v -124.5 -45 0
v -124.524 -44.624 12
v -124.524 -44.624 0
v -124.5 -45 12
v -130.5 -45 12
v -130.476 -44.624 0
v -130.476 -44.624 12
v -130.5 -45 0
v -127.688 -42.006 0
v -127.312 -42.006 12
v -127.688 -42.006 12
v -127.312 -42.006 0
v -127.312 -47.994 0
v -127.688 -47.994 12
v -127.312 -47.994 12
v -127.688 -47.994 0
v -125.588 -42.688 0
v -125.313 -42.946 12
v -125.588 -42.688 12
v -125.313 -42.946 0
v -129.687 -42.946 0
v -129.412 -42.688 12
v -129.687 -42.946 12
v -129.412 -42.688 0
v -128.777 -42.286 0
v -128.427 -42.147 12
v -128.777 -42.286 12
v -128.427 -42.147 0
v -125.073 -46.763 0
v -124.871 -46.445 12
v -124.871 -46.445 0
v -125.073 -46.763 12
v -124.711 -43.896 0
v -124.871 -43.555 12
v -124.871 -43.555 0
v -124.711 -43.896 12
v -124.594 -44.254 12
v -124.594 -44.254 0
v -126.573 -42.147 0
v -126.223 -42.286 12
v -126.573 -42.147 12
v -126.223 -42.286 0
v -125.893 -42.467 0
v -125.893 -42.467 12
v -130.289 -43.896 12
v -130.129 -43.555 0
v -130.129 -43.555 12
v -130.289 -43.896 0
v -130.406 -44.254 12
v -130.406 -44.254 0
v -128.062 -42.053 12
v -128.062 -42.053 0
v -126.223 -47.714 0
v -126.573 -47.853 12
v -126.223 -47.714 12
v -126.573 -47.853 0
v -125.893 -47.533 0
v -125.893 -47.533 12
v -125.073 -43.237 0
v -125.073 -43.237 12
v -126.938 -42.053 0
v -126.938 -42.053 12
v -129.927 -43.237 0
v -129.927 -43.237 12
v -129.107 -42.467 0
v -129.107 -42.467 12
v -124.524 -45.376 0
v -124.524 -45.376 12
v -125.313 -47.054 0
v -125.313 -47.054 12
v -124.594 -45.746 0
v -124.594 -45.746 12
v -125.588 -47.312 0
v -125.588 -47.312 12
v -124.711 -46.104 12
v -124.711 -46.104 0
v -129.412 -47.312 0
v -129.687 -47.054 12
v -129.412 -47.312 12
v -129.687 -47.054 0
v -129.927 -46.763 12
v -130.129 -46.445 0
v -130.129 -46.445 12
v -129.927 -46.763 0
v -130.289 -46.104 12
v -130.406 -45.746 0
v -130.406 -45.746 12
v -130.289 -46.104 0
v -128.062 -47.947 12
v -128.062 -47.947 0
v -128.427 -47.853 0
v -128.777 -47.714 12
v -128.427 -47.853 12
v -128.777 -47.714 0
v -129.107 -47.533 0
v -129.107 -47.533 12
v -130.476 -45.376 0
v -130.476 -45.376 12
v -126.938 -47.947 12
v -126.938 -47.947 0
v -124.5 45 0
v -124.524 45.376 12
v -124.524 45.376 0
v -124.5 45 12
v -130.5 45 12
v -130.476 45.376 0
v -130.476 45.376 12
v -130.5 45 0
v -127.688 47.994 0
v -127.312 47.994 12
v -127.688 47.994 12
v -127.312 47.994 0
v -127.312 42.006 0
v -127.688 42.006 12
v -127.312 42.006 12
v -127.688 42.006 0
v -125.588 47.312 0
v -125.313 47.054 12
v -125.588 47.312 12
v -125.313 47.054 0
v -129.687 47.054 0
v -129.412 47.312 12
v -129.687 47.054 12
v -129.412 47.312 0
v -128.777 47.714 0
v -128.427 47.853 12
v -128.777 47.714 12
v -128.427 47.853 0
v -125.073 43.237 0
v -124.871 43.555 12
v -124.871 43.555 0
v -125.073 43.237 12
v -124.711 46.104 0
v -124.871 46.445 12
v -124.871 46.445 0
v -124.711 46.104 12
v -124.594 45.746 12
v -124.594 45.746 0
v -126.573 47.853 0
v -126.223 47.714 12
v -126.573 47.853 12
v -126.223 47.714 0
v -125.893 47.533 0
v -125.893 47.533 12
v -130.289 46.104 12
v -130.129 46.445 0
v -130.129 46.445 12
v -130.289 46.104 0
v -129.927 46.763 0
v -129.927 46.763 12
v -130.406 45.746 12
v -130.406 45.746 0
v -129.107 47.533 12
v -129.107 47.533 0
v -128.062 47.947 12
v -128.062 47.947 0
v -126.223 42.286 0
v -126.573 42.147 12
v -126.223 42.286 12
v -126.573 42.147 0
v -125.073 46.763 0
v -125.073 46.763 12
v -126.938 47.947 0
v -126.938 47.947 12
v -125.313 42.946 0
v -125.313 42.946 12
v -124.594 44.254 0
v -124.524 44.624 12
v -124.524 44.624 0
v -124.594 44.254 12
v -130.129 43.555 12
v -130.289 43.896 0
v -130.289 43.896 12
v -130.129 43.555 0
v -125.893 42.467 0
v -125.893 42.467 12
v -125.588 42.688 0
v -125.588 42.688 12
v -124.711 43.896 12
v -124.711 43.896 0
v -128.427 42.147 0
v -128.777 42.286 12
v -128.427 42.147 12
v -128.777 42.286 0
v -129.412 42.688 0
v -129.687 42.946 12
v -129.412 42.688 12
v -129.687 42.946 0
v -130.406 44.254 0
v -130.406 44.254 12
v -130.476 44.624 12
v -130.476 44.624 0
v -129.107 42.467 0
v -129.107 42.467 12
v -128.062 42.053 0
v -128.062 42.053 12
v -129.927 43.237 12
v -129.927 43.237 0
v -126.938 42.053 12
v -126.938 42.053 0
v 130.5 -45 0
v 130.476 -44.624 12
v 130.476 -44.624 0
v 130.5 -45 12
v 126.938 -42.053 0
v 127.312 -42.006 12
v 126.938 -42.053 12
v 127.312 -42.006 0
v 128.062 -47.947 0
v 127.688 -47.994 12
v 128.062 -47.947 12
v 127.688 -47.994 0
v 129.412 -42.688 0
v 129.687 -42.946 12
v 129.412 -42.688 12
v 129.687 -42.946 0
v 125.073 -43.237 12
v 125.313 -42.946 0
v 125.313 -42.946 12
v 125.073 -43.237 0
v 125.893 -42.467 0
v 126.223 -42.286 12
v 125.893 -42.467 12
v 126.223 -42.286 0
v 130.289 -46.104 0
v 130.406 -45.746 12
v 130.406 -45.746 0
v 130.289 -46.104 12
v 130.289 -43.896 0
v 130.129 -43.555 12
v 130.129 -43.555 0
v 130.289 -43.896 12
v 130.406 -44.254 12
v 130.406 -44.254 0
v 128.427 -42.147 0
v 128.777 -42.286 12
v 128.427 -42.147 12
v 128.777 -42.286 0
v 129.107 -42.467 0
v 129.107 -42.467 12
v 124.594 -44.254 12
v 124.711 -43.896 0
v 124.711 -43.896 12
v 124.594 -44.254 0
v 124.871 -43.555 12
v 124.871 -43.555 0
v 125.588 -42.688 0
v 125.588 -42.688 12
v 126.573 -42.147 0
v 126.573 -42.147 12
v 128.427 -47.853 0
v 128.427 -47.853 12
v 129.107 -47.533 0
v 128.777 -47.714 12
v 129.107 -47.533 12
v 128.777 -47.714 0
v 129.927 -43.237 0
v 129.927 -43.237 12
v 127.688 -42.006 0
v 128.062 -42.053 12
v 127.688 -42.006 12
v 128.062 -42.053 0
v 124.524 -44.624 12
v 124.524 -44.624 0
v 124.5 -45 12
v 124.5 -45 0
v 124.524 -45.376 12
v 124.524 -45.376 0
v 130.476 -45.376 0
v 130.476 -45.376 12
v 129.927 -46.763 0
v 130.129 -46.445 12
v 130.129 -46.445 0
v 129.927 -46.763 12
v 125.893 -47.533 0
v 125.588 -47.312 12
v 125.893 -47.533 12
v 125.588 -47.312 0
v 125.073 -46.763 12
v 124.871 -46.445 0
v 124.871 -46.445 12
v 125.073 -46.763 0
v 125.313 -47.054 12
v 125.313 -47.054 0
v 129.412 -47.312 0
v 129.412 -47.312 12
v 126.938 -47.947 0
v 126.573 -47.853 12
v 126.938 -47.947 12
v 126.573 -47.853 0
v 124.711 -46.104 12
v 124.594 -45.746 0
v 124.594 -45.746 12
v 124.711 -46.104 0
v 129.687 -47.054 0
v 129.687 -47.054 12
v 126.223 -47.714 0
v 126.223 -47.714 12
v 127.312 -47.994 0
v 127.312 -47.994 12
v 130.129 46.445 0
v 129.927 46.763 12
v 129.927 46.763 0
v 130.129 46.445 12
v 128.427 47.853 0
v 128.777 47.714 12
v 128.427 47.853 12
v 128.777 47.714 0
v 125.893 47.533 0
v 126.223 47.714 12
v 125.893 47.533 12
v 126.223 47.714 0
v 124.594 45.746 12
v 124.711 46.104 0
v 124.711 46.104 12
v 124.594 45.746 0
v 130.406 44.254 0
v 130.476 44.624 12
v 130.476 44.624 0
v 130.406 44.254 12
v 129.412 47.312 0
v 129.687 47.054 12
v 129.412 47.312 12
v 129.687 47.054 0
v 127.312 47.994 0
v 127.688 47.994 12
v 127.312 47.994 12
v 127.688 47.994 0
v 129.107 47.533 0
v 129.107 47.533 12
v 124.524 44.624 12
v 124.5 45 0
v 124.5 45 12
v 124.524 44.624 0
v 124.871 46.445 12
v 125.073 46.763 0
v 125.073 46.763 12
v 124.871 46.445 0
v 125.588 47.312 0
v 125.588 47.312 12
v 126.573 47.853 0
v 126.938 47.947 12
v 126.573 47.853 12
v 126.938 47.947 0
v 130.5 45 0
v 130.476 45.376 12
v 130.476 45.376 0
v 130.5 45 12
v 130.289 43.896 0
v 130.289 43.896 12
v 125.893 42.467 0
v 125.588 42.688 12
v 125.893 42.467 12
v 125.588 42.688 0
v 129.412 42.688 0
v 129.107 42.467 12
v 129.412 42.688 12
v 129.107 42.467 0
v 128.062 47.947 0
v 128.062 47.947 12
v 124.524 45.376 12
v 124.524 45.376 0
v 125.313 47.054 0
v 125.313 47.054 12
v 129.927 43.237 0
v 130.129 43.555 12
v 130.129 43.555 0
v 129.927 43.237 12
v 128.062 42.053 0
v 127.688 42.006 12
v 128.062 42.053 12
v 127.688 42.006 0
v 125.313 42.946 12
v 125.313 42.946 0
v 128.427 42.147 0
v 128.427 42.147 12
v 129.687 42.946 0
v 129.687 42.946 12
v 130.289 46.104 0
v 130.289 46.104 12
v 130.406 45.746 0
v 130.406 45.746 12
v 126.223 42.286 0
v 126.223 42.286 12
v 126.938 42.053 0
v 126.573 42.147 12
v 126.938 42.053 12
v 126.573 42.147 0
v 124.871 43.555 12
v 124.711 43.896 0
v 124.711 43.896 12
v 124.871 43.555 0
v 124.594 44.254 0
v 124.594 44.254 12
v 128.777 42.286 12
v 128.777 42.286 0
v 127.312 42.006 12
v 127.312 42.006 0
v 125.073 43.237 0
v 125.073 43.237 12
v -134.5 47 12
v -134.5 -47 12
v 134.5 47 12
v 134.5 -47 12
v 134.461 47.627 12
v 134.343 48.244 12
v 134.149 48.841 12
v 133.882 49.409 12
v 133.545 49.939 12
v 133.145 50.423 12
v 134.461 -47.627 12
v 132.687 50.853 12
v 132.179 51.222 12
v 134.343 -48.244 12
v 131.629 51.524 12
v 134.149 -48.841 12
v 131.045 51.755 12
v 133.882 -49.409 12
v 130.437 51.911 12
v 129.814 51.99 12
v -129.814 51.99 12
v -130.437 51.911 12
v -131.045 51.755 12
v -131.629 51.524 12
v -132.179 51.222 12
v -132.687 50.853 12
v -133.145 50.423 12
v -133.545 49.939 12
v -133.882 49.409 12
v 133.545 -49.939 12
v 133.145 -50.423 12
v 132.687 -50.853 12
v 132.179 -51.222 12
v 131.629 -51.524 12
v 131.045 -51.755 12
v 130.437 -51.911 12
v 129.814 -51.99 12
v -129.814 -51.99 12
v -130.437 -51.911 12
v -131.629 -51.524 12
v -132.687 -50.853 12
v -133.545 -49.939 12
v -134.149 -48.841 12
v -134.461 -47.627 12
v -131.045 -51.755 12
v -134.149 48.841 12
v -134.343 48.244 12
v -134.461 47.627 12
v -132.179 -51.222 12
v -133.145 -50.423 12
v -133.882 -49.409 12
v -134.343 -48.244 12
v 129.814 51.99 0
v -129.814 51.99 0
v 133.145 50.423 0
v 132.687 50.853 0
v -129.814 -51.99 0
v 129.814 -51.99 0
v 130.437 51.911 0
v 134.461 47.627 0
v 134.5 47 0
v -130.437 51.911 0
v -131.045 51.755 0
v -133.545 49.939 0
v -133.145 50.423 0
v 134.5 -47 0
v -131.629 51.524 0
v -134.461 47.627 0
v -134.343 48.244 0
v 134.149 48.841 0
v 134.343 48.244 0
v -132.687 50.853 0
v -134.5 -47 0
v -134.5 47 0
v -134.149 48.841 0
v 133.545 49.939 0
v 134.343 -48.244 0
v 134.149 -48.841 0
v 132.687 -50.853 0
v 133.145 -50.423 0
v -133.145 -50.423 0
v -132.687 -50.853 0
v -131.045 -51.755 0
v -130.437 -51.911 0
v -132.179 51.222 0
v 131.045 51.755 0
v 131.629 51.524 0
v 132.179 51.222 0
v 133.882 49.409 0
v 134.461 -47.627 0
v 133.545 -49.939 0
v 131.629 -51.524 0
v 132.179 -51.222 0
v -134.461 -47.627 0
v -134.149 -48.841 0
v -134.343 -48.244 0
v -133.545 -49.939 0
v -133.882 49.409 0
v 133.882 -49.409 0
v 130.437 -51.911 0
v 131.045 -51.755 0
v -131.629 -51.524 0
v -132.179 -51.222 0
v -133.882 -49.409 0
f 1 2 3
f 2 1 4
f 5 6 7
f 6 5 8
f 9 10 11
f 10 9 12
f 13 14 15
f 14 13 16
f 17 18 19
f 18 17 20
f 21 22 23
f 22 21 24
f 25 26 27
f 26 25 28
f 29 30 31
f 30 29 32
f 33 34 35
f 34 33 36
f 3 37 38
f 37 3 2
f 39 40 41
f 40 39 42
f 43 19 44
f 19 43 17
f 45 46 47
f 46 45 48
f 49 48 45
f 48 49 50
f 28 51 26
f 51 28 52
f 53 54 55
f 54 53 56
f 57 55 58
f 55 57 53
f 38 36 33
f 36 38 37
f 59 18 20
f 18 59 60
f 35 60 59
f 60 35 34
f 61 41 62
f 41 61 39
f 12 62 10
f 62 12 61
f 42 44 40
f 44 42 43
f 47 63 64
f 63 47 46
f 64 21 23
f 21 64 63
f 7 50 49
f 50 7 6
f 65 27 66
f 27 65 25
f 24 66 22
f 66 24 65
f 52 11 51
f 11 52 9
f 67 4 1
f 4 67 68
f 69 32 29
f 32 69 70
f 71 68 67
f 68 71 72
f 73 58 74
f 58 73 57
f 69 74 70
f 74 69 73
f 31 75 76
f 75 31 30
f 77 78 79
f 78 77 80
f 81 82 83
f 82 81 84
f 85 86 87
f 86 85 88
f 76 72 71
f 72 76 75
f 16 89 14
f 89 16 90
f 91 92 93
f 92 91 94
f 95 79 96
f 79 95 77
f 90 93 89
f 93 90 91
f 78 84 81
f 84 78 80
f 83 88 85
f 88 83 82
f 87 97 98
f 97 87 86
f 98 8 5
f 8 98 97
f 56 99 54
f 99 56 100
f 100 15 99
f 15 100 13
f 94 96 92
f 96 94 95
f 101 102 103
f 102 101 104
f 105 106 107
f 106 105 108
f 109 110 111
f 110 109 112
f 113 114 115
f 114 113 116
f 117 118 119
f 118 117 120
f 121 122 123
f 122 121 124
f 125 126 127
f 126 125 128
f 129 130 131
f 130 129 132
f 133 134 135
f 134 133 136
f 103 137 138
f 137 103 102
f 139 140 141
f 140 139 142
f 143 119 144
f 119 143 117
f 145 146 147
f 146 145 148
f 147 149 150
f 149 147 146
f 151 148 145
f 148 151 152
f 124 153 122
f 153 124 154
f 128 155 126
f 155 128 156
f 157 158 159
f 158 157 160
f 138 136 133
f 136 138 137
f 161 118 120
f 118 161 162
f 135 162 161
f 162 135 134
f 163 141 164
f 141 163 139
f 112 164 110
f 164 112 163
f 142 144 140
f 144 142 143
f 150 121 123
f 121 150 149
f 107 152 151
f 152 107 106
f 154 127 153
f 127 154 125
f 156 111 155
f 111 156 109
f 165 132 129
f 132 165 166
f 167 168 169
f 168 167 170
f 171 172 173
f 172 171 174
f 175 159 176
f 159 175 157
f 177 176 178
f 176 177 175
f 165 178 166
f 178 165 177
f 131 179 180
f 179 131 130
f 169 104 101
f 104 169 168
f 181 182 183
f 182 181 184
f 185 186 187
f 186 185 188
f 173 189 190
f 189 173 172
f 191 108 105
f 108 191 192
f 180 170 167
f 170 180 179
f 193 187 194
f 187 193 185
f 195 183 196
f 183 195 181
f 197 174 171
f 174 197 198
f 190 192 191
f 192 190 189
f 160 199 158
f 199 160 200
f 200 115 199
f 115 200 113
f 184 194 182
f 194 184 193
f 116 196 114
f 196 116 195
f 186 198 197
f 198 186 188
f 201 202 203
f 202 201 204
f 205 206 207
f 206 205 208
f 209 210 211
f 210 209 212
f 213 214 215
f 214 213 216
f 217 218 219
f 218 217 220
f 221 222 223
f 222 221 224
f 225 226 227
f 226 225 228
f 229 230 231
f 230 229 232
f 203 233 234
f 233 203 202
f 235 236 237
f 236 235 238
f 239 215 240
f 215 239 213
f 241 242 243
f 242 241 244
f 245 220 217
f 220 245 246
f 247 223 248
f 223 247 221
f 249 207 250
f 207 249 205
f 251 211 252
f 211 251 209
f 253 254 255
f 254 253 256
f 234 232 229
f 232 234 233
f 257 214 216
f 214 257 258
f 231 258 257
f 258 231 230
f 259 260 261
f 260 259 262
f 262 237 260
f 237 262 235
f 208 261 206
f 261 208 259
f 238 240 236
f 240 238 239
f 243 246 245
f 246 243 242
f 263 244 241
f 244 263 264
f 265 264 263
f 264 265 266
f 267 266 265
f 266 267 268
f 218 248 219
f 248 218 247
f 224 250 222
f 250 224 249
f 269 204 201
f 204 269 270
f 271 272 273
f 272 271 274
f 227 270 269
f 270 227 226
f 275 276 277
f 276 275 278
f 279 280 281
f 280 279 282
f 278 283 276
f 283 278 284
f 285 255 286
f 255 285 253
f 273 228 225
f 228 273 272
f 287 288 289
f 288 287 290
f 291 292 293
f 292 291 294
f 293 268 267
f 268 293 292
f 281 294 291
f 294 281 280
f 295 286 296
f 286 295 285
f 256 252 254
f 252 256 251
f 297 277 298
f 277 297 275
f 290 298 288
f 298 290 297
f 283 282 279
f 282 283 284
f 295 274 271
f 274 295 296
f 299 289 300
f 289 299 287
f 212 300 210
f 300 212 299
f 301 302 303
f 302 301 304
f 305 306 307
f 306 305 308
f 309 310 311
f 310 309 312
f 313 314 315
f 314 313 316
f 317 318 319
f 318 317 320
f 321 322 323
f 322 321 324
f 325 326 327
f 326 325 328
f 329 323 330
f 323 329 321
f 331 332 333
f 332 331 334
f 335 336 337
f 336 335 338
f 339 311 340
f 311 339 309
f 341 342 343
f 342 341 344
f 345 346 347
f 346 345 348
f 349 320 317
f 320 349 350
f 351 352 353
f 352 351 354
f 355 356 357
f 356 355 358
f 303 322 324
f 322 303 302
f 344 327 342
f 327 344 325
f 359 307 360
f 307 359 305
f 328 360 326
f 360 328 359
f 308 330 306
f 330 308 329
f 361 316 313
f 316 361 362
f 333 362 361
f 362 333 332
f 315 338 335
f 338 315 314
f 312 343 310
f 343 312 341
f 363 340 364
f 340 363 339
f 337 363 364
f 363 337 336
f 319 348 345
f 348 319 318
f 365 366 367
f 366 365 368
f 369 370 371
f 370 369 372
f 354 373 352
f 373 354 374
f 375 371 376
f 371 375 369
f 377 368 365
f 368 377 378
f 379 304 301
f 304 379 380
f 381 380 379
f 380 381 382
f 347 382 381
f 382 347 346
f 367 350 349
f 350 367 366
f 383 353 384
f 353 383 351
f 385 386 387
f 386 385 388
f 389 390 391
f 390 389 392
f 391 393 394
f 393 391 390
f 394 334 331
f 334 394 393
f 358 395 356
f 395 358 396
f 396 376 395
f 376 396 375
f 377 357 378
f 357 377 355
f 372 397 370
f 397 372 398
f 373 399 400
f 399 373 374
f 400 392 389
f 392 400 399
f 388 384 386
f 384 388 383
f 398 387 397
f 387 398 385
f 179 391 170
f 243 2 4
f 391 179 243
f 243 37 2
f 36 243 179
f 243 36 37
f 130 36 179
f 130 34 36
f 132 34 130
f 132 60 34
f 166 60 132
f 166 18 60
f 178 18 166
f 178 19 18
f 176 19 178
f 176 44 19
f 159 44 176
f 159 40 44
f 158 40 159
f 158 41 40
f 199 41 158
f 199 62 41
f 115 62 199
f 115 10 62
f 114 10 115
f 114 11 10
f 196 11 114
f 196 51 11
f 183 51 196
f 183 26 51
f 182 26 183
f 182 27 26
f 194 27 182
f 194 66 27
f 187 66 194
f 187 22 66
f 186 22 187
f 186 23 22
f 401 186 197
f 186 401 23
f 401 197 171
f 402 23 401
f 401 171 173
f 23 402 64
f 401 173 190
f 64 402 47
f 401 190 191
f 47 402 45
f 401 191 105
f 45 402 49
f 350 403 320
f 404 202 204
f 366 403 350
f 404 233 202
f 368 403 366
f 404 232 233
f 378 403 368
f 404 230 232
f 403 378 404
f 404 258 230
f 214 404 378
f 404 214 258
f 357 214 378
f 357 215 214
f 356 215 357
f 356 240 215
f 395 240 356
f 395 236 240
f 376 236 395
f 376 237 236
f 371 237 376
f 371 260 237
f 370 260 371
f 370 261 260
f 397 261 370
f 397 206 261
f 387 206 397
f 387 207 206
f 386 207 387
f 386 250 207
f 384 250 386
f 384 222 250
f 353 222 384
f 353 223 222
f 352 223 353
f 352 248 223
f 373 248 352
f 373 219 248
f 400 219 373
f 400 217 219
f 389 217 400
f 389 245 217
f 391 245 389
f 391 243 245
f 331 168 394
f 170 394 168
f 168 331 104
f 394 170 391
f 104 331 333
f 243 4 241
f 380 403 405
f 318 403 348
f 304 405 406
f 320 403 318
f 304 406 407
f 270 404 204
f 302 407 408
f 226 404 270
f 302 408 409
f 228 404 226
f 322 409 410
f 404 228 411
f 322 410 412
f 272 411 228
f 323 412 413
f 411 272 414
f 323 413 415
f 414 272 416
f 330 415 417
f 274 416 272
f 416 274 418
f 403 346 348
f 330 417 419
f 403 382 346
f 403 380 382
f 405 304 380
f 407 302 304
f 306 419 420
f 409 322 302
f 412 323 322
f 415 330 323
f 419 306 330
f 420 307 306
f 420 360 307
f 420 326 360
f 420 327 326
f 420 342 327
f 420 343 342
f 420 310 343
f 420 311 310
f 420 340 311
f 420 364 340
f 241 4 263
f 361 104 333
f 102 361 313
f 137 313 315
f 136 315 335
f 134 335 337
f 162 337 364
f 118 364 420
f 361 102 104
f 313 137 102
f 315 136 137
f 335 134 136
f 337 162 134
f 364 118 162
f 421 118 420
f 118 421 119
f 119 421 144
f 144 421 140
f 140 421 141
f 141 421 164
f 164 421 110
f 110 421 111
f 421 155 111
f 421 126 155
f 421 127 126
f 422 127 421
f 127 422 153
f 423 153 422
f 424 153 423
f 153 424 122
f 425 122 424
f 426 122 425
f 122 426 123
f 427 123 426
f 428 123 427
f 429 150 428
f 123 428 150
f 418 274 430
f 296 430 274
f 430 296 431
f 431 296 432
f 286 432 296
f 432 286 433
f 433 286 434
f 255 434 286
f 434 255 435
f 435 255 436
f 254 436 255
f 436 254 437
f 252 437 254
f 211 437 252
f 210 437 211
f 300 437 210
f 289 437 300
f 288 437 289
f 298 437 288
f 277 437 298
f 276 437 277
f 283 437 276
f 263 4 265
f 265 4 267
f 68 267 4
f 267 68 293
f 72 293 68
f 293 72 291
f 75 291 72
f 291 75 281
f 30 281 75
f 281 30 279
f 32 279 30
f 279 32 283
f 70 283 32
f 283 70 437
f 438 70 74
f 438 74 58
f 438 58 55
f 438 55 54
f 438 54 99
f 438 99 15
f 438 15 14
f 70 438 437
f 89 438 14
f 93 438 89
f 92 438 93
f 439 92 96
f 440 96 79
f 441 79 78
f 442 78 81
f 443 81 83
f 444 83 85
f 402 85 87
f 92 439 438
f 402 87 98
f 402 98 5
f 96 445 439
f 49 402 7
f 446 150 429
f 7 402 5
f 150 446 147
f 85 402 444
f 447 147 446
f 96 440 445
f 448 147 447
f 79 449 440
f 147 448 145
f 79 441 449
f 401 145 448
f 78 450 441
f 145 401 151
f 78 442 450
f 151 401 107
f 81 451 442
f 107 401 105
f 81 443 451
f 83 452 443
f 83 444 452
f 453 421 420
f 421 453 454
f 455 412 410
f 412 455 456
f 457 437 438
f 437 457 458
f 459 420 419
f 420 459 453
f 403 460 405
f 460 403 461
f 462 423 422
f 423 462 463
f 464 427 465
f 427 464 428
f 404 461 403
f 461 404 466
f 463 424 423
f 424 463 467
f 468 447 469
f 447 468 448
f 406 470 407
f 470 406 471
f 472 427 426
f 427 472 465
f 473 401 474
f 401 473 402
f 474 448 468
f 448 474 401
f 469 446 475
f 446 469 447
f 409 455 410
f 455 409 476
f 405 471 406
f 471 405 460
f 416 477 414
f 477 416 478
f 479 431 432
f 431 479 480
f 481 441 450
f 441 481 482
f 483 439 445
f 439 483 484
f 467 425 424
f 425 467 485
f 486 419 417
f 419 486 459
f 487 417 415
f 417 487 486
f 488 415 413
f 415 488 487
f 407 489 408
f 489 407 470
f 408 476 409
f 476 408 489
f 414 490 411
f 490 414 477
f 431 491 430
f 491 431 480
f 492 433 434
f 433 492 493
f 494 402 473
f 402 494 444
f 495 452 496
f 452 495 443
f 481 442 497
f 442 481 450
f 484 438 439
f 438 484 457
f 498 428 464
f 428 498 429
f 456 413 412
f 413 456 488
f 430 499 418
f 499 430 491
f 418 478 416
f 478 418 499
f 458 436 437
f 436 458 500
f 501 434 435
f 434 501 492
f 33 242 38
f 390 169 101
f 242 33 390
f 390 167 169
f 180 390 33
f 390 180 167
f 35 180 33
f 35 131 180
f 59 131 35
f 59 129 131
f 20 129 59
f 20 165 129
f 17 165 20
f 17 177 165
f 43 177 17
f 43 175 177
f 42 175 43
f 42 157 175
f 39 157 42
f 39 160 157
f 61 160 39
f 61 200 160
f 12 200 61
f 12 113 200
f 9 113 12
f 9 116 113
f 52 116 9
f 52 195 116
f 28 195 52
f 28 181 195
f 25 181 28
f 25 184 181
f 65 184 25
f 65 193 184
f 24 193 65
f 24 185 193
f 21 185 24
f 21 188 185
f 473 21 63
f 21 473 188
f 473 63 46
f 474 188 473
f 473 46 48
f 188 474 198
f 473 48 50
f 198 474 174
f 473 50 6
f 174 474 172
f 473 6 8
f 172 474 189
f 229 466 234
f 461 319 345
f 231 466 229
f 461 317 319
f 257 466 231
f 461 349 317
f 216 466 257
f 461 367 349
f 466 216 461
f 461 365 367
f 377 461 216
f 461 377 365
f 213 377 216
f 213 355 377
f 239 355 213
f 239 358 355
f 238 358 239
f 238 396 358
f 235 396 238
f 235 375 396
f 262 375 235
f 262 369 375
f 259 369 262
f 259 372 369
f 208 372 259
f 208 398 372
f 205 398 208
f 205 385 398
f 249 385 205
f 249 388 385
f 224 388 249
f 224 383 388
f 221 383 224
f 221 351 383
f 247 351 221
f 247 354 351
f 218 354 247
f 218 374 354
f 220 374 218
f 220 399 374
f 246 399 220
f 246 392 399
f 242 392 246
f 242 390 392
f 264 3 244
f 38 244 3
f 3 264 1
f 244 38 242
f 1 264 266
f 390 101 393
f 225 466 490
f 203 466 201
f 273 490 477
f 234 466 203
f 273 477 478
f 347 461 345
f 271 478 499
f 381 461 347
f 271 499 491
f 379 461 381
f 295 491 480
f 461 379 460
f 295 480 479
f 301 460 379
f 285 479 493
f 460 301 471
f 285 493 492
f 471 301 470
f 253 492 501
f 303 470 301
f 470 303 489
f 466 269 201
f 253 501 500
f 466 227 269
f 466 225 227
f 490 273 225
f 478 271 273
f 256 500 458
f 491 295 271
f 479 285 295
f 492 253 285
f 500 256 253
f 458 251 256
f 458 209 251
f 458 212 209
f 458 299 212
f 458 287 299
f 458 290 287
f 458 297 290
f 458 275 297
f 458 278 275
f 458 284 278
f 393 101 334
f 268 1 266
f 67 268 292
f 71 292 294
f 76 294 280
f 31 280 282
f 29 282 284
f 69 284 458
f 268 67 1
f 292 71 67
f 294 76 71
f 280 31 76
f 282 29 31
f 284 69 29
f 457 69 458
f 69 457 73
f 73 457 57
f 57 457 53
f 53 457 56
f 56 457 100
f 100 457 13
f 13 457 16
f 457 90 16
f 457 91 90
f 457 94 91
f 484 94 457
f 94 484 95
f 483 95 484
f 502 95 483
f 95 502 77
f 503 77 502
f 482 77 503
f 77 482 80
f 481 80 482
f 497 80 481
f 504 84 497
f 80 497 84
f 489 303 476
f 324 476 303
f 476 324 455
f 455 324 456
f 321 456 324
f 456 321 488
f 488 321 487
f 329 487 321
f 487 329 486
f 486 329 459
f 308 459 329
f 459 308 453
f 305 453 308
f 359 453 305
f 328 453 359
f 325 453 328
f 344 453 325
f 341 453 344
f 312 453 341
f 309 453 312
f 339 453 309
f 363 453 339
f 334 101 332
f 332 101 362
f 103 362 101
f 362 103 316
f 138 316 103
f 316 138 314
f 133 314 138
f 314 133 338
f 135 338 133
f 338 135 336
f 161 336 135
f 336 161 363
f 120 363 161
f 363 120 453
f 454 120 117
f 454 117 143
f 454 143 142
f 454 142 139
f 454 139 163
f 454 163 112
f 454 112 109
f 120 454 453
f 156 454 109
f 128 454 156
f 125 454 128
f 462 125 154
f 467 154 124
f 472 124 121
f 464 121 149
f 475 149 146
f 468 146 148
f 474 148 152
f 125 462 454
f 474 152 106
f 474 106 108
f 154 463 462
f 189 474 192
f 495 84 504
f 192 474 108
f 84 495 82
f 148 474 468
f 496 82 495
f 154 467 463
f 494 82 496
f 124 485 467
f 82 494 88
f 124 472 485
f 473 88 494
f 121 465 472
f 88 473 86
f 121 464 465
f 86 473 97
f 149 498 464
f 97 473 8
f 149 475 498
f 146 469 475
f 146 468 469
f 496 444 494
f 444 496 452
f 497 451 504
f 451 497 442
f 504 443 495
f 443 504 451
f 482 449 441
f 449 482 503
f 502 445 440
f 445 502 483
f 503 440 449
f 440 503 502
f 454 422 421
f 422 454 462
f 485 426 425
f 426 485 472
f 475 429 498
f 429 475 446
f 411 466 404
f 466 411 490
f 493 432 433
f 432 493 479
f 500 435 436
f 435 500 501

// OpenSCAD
$fn = 50;


difference() {
	union() {
		hull() {
			translate(v = [-129.5000000000, 47.0000000000, 0]) {
				cylinder(h = 12, r = 5);
			}
			translate(v = [129.5000000000, 47.0000000000, 0]) {
				cylinder(h = 12, r = 5);
			}
			translate(v = [-129.5000000000, -47.0000000000, 0]) {
				cylinder(h = 12, r = 5);
			}
			translate(v = [129.5000000000, -47.0000000000, 0]) {
				cylinder(h = 12, r = 5);
			}
		}
	}
	union() {
		translate(v = [-127.5000000000, -45.0000000000, -100.0000000000]) {
			cylinder(h = 200, r = 3.0000000000);
		}
		translate(v = [-127.5000000000, 45.0000000000, -100.0000000000]) {
			cylinder(h = 200, r = 3.0000000000);
		}
		translate(v = [127.5000000000, -45.0000000000, -100.0000000000]) {
			cylinder(h = 200, r = 3.0000000000);
		}
		translate(v = [127.5000000000, 45.0000000000, -100.0000000000]) {
			cylinder(h = 200, r = 3.0000000000);
		}
	}
}
